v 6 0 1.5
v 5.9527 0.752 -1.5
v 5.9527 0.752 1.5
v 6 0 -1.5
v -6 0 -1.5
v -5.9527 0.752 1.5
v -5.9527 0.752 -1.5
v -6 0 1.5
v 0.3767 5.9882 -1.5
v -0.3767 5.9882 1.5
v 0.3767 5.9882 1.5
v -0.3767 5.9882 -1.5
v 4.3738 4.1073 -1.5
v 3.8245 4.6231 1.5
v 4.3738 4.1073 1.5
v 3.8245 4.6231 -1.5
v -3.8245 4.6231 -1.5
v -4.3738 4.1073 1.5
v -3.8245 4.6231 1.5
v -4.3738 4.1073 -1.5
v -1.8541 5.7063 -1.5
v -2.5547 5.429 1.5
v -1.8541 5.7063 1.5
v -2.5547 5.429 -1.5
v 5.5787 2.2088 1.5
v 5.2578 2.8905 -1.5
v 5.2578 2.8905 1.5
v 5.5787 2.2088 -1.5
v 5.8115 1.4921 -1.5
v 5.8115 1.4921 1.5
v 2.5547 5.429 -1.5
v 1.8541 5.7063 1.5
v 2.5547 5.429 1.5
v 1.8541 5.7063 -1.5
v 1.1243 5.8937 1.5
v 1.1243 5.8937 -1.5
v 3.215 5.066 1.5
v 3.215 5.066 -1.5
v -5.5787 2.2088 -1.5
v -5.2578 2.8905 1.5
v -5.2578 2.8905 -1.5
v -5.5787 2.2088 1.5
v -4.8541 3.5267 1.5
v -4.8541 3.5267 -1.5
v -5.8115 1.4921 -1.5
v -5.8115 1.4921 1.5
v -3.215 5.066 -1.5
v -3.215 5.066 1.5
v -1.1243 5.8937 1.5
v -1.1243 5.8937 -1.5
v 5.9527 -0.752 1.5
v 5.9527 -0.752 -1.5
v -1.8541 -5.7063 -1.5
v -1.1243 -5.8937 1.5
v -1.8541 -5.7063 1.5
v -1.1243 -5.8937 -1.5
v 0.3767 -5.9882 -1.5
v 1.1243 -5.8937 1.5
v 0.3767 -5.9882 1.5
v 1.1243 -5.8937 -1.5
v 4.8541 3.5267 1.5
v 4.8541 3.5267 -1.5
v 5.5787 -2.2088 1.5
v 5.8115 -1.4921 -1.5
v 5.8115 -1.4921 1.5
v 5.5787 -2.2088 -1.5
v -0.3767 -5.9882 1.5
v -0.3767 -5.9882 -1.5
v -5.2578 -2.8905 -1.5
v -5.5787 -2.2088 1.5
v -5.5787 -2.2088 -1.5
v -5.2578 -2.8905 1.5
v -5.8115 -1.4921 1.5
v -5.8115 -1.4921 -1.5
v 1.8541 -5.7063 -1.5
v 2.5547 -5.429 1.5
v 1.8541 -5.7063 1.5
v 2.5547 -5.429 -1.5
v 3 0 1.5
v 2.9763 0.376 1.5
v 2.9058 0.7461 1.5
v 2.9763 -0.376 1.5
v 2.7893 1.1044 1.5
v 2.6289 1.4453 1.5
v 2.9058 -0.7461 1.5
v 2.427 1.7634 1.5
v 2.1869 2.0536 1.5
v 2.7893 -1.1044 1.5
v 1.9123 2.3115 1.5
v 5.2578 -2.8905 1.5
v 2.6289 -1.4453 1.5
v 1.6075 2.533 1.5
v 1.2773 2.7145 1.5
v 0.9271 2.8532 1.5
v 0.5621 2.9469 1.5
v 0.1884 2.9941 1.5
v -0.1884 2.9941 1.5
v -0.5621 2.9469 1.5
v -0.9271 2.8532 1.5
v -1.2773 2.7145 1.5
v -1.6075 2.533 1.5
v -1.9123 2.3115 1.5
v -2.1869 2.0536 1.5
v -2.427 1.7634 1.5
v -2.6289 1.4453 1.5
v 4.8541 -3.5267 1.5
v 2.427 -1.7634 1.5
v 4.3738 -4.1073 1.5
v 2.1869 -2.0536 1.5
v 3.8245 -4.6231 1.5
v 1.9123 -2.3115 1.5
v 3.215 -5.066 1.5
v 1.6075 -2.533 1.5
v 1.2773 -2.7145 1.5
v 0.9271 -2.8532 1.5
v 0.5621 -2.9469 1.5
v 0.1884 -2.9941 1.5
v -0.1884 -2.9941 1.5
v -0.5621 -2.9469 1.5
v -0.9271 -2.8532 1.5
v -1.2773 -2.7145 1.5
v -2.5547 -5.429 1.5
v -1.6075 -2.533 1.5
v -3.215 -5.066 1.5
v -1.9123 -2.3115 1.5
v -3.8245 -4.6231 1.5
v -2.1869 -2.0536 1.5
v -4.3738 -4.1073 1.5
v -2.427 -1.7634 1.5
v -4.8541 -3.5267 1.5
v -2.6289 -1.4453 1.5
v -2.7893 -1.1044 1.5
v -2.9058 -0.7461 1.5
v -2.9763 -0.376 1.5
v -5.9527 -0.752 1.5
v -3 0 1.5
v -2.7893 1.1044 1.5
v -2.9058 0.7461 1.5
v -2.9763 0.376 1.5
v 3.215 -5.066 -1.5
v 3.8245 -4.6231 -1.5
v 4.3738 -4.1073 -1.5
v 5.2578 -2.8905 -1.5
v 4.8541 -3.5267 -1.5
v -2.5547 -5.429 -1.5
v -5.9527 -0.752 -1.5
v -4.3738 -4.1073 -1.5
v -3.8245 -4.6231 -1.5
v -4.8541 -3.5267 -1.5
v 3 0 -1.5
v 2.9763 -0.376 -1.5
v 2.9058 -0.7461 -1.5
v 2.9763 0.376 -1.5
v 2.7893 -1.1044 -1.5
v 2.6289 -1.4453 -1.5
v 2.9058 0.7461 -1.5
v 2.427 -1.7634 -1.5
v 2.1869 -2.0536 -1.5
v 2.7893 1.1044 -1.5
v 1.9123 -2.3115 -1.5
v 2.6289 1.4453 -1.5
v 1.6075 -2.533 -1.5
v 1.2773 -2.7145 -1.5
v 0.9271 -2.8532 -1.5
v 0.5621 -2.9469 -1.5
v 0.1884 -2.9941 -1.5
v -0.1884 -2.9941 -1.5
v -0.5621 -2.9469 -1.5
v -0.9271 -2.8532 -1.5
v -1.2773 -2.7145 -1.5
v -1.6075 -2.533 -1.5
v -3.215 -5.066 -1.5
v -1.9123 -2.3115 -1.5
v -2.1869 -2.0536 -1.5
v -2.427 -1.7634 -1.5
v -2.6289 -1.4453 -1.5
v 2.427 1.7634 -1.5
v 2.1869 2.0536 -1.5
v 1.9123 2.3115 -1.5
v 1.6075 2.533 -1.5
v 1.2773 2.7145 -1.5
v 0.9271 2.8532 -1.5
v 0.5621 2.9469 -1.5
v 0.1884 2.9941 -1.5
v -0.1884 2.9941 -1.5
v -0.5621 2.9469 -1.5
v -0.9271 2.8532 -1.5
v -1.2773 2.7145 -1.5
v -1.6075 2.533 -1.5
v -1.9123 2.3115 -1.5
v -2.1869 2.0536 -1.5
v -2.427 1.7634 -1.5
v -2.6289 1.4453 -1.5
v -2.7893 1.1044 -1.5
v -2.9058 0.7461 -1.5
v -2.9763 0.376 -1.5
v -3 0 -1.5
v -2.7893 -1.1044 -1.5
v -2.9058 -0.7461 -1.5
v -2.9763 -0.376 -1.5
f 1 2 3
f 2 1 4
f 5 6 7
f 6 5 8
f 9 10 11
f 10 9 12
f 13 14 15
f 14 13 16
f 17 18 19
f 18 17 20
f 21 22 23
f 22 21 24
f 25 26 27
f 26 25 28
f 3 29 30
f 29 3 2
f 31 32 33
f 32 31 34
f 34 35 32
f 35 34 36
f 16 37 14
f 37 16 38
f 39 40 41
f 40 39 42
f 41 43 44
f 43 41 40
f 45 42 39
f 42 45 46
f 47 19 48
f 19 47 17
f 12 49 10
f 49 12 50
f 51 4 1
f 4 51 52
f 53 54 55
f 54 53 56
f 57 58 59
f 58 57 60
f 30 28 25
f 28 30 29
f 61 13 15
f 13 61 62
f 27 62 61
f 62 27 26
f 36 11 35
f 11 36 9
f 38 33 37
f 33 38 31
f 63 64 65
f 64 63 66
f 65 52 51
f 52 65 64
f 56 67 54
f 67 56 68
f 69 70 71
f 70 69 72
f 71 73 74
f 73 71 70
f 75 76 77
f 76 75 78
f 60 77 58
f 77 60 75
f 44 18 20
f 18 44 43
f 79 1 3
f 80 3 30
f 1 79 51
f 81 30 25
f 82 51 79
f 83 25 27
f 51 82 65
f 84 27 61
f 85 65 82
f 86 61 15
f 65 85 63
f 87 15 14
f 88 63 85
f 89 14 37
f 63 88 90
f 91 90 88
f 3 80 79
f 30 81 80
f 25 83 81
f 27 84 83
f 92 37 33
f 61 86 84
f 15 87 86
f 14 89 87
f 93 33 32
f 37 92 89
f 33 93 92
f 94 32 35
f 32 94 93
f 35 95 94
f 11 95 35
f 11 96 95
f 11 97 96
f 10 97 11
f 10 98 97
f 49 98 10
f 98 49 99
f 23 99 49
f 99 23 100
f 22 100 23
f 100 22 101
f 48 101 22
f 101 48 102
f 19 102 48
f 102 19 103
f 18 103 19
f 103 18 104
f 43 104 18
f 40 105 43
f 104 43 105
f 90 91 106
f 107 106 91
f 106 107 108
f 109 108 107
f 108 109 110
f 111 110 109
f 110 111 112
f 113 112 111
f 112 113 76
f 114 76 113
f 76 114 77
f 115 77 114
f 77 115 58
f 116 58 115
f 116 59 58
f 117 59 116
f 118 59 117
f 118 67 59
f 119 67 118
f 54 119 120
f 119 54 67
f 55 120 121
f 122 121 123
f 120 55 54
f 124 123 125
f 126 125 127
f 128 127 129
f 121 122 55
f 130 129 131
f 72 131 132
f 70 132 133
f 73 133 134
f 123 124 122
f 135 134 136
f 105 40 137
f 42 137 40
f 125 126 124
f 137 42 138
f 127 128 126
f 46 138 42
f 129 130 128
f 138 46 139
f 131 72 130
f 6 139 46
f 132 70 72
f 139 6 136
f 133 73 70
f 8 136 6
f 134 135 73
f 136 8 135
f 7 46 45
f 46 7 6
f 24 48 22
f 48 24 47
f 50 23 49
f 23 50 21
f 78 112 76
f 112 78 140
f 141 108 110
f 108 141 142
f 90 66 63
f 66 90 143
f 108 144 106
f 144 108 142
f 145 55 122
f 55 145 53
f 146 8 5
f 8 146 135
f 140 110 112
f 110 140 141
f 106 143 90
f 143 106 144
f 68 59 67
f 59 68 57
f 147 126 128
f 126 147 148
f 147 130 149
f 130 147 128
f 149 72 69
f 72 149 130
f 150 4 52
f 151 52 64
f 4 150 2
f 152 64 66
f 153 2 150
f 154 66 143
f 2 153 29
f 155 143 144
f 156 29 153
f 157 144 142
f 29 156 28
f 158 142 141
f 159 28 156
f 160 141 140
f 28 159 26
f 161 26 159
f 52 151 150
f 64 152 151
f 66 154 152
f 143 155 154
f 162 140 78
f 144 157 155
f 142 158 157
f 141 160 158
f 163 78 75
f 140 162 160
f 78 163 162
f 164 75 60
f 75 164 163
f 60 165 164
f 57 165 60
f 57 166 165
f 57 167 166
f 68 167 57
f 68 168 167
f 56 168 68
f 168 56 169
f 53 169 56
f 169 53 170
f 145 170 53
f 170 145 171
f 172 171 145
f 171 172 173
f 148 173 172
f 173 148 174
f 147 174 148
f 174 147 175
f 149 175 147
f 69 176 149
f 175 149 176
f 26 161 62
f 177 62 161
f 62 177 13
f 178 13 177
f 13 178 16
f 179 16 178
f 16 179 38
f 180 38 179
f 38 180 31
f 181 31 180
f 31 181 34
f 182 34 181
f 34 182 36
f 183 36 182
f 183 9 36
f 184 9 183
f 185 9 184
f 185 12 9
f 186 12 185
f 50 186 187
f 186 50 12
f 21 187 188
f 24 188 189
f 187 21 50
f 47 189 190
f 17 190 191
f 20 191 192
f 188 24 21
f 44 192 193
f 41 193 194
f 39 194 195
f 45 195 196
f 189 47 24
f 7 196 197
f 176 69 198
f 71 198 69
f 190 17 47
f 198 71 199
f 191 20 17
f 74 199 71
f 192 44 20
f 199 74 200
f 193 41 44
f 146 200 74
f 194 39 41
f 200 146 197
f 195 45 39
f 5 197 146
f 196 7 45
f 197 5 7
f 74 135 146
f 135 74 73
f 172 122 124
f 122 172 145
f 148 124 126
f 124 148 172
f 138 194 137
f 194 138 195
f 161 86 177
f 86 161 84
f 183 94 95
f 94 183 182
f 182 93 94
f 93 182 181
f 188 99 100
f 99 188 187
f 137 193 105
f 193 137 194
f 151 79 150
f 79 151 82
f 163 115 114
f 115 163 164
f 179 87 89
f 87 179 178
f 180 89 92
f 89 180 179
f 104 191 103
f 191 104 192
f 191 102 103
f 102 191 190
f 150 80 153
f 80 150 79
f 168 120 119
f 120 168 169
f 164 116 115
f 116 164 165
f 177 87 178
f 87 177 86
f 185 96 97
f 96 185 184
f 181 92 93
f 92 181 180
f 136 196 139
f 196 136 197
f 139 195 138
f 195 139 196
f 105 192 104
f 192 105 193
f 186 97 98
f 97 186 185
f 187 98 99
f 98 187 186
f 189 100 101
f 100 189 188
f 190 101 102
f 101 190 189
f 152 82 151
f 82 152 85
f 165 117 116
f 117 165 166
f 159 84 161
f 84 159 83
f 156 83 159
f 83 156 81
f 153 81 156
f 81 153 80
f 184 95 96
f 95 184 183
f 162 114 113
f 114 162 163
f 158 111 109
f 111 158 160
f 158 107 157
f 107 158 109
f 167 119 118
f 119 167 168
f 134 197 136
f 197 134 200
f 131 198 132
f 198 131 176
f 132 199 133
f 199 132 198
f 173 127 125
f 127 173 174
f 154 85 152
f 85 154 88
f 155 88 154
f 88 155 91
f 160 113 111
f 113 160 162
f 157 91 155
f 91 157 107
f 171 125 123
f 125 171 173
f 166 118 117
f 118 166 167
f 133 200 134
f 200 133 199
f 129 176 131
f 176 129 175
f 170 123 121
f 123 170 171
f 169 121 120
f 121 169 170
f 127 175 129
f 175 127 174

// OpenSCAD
$fn = 50;


difference() {
	union() {
		translate(v = [0, 0, -1.5000000000]) {
			cylinder(h = 3, r = 6.0000000000);
		}
	}
	union() {
		translate(v = [0, 0, -100.0000000000]) {
			cylinder(h = 200, r = 3.0000000000);
		}
	}
}
